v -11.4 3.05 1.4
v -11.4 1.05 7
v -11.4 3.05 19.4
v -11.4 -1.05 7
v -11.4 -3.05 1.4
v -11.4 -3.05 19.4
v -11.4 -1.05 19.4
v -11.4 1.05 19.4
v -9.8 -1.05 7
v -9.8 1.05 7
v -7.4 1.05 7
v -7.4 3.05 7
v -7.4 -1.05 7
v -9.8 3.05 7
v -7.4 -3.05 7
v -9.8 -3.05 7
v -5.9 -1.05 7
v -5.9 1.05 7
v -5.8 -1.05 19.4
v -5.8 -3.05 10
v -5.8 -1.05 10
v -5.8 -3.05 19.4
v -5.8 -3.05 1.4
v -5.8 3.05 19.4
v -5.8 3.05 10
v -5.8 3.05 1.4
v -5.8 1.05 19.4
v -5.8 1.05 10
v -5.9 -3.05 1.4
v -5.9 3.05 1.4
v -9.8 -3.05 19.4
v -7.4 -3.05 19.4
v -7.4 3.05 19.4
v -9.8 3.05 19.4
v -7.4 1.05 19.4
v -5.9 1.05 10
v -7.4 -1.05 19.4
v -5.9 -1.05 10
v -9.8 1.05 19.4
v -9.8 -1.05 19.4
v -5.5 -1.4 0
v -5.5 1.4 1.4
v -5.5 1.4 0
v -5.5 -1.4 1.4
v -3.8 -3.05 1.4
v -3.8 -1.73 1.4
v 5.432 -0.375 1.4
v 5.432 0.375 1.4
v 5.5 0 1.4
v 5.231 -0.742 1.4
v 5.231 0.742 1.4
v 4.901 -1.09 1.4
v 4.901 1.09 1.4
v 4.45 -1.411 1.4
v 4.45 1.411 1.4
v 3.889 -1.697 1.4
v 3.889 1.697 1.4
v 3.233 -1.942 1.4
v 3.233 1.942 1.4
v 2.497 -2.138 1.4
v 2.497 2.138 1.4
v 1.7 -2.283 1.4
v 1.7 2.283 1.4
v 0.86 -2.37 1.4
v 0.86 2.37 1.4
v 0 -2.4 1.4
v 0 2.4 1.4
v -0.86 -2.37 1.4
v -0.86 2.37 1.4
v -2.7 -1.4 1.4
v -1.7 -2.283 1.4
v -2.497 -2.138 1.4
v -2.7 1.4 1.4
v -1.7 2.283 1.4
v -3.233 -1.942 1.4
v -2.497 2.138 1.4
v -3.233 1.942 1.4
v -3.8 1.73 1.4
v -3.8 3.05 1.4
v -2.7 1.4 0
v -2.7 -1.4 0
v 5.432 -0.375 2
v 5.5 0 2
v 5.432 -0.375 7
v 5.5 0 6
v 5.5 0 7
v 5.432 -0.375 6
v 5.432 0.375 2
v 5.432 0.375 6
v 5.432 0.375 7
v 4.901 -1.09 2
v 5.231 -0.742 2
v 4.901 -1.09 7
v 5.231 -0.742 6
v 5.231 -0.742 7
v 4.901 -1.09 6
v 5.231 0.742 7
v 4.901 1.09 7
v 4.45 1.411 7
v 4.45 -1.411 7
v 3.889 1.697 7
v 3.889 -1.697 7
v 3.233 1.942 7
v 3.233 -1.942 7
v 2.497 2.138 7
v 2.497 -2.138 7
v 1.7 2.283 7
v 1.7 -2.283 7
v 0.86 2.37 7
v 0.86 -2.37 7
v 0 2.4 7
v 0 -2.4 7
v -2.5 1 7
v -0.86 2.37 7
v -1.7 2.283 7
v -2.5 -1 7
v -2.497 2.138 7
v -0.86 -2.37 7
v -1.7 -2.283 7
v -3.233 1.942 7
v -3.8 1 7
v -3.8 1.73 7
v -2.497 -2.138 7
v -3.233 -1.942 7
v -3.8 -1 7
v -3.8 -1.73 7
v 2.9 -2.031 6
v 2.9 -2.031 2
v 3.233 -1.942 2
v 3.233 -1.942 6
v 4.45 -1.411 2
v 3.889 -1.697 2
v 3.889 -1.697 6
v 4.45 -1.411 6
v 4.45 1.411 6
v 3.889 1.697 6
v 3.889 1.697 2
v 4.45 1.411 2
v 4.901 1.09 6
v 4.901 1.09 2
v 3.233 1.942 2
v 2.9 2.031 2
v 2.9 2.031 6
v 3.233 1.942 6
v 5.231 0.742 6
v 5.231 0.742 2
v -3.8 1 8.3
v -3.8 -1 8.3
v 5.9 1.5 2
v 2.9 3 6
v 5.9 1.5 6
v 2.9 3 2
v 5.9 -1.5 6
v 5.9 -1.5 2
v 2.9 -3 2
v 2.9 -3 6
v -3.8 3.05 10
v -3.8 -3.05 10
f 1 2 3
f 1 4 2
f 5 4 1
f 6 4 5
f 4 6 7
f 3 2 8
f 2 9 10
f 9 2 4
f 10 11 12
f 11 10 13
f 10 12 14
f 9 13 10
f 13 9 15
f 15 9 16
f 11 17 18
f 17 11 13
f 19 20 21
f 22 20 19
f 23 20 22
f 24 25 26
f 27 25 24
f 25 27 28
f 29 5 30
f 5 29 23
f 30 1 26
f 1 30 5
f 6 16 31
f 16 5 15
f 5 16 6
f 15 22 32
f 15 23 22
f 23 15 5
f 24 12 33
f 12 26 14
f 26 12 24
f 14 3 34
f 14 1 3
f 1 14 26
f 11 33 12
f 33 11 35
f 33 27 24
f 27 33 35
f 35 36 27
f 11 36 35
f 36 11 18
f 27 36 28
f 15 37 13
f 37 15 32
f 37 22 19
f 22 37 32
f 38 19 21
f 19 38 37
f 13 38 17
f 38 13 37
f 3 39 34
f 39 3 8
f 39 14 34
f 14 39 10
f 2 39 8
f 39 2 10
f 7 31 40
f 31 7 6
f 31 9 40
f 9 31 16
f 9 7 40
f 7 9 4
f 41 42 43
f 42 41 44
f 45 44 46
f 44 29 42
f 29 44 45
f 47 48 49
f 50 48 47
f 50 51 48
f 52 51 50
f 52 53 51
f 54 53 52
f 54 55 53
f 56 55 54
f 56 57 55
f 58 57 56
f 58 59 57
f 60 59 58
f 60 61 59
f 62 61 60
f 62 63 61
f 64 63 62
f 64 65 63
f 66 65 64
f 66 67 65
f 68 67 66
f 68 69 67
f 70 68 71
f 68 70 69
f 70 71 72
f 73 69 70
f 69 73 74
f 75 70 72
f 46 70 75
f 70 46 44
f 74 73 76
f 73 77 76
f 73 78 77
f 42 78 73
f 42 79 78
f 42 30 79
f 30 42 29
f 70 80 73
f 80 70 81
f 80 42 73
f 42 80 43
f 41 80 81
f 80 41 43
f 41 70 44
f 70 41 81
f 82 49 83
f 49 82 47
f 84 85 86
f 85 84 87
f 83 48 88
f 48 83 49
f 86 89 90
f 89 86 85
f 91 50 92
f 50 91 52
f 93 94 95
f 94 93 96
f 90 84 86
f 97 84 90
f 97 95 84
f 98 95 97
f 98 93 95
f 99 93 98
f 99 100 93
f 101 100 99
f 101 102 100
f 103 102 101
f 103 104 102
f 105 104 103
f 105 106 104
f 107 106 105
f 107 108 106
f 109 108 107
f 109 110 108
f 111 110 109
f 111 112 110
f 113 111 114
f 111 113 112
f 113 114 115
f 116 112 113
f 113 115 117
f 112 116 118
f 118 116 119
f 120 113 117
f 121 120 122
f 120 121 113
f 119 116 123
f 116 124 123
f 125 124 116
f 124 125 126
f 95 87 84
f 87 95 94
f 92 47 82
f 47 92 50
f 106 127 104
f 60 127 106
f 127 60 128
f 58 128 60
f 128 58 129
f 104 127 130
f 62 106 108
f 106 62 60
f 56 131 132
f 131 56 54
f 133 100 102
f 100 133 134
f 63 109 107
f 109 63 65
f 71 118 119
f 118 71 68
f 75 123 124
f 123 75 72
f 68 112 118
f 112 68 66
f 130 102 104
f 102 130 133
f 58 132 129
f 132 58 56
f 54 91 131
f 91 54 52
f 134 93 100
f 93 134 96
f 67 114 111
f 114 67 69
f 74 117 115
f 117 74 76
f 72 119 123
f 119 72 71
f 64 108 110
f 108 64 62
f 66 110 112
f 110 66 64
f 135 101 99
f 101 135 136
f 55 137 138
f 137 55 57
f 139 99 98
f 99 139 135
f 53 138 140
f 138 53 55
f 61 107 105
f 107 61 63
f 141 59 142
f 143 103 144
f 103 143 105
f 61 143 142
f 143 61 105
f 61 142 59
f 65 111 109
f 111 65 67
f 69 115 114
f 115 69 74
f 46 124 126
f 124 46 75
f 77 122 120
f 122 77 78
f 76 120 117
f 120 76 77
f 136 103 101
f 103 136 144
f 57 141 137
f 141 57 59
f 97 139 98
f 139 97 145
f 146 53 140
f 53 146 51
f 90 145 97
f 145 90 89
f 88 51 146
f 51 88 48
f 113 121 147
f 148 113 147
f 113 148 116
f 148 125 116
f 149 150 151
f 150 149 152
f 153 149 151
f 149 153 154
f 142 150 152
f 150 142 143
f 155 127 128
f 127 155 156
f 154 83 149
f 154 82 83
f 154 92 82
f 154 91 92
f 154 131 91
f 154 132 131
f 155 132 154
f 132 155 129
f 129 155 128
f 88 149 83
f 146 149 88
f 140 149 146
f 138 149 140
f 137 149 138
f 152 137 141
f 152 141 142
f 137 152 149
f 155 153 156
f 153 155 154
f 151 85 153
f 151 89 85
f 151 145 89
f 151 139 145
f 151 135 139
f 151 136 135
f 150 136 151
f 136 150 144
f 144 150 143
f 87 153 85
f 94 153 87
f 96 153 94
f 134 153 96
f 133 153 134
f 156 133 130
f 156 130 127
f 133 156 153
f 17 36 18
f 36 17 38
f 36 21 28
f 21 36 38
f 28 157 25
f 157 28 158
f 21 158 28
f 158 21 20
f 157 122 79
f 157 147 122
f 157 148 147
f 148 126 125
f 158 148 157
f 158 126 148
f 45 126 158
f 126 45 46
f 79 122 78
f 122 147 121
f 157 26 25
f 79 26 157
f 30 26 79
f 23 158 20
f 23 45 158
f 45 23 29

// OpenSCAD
union() {
    translate([-(11/2)+1.4,0,0.7])cube(size=[2.8,2.8,1.4],center=true);
    translate([0,0,1.4])
    linear_extrude(5.6)scale([11,4.8])circle(0.5,$fn=40);

    translate([-(11/2),1,5.6+1.4])
    rotate([90,0,0])linear_extrude(2)polygon([[0,0],[0,3],[3,0]]);
    
    translate([2.9,0,2])linear_extrude(4)rotate([0,0,-90])polygon([[-3,0],[-1.5,3],[1.5,3],[3,0]]);
    
    translate([-7.4,(2.1)/2,1.4]) {
    
        translate([-2.4-1.6,-2.1-2,0])cube([3.2+2.4,4+2.1,5.6]);
        cube([1.6,2,18]);
        
        translate([0,-4.1,0])cube([1.6,2,18]);
        translate([-4,0,0])cube([1.6,2,18]);
        translate([-4,-4.1,0])cube([1.6,2,18]);
        
        
    }
    translate([-7.4+1.5,-(4+2.1)/2,1.4])cube([2.1,4+2.1,5.6+3]);
}

//color([1,0,0]) translate([-2.7,-2.4,1.4])cube([5.6,4.8,5.5]);

//color([1,0,0]) translate([-2.7-3.1,-2.4,1.4])cube([8.7,4.8,5.5]);
